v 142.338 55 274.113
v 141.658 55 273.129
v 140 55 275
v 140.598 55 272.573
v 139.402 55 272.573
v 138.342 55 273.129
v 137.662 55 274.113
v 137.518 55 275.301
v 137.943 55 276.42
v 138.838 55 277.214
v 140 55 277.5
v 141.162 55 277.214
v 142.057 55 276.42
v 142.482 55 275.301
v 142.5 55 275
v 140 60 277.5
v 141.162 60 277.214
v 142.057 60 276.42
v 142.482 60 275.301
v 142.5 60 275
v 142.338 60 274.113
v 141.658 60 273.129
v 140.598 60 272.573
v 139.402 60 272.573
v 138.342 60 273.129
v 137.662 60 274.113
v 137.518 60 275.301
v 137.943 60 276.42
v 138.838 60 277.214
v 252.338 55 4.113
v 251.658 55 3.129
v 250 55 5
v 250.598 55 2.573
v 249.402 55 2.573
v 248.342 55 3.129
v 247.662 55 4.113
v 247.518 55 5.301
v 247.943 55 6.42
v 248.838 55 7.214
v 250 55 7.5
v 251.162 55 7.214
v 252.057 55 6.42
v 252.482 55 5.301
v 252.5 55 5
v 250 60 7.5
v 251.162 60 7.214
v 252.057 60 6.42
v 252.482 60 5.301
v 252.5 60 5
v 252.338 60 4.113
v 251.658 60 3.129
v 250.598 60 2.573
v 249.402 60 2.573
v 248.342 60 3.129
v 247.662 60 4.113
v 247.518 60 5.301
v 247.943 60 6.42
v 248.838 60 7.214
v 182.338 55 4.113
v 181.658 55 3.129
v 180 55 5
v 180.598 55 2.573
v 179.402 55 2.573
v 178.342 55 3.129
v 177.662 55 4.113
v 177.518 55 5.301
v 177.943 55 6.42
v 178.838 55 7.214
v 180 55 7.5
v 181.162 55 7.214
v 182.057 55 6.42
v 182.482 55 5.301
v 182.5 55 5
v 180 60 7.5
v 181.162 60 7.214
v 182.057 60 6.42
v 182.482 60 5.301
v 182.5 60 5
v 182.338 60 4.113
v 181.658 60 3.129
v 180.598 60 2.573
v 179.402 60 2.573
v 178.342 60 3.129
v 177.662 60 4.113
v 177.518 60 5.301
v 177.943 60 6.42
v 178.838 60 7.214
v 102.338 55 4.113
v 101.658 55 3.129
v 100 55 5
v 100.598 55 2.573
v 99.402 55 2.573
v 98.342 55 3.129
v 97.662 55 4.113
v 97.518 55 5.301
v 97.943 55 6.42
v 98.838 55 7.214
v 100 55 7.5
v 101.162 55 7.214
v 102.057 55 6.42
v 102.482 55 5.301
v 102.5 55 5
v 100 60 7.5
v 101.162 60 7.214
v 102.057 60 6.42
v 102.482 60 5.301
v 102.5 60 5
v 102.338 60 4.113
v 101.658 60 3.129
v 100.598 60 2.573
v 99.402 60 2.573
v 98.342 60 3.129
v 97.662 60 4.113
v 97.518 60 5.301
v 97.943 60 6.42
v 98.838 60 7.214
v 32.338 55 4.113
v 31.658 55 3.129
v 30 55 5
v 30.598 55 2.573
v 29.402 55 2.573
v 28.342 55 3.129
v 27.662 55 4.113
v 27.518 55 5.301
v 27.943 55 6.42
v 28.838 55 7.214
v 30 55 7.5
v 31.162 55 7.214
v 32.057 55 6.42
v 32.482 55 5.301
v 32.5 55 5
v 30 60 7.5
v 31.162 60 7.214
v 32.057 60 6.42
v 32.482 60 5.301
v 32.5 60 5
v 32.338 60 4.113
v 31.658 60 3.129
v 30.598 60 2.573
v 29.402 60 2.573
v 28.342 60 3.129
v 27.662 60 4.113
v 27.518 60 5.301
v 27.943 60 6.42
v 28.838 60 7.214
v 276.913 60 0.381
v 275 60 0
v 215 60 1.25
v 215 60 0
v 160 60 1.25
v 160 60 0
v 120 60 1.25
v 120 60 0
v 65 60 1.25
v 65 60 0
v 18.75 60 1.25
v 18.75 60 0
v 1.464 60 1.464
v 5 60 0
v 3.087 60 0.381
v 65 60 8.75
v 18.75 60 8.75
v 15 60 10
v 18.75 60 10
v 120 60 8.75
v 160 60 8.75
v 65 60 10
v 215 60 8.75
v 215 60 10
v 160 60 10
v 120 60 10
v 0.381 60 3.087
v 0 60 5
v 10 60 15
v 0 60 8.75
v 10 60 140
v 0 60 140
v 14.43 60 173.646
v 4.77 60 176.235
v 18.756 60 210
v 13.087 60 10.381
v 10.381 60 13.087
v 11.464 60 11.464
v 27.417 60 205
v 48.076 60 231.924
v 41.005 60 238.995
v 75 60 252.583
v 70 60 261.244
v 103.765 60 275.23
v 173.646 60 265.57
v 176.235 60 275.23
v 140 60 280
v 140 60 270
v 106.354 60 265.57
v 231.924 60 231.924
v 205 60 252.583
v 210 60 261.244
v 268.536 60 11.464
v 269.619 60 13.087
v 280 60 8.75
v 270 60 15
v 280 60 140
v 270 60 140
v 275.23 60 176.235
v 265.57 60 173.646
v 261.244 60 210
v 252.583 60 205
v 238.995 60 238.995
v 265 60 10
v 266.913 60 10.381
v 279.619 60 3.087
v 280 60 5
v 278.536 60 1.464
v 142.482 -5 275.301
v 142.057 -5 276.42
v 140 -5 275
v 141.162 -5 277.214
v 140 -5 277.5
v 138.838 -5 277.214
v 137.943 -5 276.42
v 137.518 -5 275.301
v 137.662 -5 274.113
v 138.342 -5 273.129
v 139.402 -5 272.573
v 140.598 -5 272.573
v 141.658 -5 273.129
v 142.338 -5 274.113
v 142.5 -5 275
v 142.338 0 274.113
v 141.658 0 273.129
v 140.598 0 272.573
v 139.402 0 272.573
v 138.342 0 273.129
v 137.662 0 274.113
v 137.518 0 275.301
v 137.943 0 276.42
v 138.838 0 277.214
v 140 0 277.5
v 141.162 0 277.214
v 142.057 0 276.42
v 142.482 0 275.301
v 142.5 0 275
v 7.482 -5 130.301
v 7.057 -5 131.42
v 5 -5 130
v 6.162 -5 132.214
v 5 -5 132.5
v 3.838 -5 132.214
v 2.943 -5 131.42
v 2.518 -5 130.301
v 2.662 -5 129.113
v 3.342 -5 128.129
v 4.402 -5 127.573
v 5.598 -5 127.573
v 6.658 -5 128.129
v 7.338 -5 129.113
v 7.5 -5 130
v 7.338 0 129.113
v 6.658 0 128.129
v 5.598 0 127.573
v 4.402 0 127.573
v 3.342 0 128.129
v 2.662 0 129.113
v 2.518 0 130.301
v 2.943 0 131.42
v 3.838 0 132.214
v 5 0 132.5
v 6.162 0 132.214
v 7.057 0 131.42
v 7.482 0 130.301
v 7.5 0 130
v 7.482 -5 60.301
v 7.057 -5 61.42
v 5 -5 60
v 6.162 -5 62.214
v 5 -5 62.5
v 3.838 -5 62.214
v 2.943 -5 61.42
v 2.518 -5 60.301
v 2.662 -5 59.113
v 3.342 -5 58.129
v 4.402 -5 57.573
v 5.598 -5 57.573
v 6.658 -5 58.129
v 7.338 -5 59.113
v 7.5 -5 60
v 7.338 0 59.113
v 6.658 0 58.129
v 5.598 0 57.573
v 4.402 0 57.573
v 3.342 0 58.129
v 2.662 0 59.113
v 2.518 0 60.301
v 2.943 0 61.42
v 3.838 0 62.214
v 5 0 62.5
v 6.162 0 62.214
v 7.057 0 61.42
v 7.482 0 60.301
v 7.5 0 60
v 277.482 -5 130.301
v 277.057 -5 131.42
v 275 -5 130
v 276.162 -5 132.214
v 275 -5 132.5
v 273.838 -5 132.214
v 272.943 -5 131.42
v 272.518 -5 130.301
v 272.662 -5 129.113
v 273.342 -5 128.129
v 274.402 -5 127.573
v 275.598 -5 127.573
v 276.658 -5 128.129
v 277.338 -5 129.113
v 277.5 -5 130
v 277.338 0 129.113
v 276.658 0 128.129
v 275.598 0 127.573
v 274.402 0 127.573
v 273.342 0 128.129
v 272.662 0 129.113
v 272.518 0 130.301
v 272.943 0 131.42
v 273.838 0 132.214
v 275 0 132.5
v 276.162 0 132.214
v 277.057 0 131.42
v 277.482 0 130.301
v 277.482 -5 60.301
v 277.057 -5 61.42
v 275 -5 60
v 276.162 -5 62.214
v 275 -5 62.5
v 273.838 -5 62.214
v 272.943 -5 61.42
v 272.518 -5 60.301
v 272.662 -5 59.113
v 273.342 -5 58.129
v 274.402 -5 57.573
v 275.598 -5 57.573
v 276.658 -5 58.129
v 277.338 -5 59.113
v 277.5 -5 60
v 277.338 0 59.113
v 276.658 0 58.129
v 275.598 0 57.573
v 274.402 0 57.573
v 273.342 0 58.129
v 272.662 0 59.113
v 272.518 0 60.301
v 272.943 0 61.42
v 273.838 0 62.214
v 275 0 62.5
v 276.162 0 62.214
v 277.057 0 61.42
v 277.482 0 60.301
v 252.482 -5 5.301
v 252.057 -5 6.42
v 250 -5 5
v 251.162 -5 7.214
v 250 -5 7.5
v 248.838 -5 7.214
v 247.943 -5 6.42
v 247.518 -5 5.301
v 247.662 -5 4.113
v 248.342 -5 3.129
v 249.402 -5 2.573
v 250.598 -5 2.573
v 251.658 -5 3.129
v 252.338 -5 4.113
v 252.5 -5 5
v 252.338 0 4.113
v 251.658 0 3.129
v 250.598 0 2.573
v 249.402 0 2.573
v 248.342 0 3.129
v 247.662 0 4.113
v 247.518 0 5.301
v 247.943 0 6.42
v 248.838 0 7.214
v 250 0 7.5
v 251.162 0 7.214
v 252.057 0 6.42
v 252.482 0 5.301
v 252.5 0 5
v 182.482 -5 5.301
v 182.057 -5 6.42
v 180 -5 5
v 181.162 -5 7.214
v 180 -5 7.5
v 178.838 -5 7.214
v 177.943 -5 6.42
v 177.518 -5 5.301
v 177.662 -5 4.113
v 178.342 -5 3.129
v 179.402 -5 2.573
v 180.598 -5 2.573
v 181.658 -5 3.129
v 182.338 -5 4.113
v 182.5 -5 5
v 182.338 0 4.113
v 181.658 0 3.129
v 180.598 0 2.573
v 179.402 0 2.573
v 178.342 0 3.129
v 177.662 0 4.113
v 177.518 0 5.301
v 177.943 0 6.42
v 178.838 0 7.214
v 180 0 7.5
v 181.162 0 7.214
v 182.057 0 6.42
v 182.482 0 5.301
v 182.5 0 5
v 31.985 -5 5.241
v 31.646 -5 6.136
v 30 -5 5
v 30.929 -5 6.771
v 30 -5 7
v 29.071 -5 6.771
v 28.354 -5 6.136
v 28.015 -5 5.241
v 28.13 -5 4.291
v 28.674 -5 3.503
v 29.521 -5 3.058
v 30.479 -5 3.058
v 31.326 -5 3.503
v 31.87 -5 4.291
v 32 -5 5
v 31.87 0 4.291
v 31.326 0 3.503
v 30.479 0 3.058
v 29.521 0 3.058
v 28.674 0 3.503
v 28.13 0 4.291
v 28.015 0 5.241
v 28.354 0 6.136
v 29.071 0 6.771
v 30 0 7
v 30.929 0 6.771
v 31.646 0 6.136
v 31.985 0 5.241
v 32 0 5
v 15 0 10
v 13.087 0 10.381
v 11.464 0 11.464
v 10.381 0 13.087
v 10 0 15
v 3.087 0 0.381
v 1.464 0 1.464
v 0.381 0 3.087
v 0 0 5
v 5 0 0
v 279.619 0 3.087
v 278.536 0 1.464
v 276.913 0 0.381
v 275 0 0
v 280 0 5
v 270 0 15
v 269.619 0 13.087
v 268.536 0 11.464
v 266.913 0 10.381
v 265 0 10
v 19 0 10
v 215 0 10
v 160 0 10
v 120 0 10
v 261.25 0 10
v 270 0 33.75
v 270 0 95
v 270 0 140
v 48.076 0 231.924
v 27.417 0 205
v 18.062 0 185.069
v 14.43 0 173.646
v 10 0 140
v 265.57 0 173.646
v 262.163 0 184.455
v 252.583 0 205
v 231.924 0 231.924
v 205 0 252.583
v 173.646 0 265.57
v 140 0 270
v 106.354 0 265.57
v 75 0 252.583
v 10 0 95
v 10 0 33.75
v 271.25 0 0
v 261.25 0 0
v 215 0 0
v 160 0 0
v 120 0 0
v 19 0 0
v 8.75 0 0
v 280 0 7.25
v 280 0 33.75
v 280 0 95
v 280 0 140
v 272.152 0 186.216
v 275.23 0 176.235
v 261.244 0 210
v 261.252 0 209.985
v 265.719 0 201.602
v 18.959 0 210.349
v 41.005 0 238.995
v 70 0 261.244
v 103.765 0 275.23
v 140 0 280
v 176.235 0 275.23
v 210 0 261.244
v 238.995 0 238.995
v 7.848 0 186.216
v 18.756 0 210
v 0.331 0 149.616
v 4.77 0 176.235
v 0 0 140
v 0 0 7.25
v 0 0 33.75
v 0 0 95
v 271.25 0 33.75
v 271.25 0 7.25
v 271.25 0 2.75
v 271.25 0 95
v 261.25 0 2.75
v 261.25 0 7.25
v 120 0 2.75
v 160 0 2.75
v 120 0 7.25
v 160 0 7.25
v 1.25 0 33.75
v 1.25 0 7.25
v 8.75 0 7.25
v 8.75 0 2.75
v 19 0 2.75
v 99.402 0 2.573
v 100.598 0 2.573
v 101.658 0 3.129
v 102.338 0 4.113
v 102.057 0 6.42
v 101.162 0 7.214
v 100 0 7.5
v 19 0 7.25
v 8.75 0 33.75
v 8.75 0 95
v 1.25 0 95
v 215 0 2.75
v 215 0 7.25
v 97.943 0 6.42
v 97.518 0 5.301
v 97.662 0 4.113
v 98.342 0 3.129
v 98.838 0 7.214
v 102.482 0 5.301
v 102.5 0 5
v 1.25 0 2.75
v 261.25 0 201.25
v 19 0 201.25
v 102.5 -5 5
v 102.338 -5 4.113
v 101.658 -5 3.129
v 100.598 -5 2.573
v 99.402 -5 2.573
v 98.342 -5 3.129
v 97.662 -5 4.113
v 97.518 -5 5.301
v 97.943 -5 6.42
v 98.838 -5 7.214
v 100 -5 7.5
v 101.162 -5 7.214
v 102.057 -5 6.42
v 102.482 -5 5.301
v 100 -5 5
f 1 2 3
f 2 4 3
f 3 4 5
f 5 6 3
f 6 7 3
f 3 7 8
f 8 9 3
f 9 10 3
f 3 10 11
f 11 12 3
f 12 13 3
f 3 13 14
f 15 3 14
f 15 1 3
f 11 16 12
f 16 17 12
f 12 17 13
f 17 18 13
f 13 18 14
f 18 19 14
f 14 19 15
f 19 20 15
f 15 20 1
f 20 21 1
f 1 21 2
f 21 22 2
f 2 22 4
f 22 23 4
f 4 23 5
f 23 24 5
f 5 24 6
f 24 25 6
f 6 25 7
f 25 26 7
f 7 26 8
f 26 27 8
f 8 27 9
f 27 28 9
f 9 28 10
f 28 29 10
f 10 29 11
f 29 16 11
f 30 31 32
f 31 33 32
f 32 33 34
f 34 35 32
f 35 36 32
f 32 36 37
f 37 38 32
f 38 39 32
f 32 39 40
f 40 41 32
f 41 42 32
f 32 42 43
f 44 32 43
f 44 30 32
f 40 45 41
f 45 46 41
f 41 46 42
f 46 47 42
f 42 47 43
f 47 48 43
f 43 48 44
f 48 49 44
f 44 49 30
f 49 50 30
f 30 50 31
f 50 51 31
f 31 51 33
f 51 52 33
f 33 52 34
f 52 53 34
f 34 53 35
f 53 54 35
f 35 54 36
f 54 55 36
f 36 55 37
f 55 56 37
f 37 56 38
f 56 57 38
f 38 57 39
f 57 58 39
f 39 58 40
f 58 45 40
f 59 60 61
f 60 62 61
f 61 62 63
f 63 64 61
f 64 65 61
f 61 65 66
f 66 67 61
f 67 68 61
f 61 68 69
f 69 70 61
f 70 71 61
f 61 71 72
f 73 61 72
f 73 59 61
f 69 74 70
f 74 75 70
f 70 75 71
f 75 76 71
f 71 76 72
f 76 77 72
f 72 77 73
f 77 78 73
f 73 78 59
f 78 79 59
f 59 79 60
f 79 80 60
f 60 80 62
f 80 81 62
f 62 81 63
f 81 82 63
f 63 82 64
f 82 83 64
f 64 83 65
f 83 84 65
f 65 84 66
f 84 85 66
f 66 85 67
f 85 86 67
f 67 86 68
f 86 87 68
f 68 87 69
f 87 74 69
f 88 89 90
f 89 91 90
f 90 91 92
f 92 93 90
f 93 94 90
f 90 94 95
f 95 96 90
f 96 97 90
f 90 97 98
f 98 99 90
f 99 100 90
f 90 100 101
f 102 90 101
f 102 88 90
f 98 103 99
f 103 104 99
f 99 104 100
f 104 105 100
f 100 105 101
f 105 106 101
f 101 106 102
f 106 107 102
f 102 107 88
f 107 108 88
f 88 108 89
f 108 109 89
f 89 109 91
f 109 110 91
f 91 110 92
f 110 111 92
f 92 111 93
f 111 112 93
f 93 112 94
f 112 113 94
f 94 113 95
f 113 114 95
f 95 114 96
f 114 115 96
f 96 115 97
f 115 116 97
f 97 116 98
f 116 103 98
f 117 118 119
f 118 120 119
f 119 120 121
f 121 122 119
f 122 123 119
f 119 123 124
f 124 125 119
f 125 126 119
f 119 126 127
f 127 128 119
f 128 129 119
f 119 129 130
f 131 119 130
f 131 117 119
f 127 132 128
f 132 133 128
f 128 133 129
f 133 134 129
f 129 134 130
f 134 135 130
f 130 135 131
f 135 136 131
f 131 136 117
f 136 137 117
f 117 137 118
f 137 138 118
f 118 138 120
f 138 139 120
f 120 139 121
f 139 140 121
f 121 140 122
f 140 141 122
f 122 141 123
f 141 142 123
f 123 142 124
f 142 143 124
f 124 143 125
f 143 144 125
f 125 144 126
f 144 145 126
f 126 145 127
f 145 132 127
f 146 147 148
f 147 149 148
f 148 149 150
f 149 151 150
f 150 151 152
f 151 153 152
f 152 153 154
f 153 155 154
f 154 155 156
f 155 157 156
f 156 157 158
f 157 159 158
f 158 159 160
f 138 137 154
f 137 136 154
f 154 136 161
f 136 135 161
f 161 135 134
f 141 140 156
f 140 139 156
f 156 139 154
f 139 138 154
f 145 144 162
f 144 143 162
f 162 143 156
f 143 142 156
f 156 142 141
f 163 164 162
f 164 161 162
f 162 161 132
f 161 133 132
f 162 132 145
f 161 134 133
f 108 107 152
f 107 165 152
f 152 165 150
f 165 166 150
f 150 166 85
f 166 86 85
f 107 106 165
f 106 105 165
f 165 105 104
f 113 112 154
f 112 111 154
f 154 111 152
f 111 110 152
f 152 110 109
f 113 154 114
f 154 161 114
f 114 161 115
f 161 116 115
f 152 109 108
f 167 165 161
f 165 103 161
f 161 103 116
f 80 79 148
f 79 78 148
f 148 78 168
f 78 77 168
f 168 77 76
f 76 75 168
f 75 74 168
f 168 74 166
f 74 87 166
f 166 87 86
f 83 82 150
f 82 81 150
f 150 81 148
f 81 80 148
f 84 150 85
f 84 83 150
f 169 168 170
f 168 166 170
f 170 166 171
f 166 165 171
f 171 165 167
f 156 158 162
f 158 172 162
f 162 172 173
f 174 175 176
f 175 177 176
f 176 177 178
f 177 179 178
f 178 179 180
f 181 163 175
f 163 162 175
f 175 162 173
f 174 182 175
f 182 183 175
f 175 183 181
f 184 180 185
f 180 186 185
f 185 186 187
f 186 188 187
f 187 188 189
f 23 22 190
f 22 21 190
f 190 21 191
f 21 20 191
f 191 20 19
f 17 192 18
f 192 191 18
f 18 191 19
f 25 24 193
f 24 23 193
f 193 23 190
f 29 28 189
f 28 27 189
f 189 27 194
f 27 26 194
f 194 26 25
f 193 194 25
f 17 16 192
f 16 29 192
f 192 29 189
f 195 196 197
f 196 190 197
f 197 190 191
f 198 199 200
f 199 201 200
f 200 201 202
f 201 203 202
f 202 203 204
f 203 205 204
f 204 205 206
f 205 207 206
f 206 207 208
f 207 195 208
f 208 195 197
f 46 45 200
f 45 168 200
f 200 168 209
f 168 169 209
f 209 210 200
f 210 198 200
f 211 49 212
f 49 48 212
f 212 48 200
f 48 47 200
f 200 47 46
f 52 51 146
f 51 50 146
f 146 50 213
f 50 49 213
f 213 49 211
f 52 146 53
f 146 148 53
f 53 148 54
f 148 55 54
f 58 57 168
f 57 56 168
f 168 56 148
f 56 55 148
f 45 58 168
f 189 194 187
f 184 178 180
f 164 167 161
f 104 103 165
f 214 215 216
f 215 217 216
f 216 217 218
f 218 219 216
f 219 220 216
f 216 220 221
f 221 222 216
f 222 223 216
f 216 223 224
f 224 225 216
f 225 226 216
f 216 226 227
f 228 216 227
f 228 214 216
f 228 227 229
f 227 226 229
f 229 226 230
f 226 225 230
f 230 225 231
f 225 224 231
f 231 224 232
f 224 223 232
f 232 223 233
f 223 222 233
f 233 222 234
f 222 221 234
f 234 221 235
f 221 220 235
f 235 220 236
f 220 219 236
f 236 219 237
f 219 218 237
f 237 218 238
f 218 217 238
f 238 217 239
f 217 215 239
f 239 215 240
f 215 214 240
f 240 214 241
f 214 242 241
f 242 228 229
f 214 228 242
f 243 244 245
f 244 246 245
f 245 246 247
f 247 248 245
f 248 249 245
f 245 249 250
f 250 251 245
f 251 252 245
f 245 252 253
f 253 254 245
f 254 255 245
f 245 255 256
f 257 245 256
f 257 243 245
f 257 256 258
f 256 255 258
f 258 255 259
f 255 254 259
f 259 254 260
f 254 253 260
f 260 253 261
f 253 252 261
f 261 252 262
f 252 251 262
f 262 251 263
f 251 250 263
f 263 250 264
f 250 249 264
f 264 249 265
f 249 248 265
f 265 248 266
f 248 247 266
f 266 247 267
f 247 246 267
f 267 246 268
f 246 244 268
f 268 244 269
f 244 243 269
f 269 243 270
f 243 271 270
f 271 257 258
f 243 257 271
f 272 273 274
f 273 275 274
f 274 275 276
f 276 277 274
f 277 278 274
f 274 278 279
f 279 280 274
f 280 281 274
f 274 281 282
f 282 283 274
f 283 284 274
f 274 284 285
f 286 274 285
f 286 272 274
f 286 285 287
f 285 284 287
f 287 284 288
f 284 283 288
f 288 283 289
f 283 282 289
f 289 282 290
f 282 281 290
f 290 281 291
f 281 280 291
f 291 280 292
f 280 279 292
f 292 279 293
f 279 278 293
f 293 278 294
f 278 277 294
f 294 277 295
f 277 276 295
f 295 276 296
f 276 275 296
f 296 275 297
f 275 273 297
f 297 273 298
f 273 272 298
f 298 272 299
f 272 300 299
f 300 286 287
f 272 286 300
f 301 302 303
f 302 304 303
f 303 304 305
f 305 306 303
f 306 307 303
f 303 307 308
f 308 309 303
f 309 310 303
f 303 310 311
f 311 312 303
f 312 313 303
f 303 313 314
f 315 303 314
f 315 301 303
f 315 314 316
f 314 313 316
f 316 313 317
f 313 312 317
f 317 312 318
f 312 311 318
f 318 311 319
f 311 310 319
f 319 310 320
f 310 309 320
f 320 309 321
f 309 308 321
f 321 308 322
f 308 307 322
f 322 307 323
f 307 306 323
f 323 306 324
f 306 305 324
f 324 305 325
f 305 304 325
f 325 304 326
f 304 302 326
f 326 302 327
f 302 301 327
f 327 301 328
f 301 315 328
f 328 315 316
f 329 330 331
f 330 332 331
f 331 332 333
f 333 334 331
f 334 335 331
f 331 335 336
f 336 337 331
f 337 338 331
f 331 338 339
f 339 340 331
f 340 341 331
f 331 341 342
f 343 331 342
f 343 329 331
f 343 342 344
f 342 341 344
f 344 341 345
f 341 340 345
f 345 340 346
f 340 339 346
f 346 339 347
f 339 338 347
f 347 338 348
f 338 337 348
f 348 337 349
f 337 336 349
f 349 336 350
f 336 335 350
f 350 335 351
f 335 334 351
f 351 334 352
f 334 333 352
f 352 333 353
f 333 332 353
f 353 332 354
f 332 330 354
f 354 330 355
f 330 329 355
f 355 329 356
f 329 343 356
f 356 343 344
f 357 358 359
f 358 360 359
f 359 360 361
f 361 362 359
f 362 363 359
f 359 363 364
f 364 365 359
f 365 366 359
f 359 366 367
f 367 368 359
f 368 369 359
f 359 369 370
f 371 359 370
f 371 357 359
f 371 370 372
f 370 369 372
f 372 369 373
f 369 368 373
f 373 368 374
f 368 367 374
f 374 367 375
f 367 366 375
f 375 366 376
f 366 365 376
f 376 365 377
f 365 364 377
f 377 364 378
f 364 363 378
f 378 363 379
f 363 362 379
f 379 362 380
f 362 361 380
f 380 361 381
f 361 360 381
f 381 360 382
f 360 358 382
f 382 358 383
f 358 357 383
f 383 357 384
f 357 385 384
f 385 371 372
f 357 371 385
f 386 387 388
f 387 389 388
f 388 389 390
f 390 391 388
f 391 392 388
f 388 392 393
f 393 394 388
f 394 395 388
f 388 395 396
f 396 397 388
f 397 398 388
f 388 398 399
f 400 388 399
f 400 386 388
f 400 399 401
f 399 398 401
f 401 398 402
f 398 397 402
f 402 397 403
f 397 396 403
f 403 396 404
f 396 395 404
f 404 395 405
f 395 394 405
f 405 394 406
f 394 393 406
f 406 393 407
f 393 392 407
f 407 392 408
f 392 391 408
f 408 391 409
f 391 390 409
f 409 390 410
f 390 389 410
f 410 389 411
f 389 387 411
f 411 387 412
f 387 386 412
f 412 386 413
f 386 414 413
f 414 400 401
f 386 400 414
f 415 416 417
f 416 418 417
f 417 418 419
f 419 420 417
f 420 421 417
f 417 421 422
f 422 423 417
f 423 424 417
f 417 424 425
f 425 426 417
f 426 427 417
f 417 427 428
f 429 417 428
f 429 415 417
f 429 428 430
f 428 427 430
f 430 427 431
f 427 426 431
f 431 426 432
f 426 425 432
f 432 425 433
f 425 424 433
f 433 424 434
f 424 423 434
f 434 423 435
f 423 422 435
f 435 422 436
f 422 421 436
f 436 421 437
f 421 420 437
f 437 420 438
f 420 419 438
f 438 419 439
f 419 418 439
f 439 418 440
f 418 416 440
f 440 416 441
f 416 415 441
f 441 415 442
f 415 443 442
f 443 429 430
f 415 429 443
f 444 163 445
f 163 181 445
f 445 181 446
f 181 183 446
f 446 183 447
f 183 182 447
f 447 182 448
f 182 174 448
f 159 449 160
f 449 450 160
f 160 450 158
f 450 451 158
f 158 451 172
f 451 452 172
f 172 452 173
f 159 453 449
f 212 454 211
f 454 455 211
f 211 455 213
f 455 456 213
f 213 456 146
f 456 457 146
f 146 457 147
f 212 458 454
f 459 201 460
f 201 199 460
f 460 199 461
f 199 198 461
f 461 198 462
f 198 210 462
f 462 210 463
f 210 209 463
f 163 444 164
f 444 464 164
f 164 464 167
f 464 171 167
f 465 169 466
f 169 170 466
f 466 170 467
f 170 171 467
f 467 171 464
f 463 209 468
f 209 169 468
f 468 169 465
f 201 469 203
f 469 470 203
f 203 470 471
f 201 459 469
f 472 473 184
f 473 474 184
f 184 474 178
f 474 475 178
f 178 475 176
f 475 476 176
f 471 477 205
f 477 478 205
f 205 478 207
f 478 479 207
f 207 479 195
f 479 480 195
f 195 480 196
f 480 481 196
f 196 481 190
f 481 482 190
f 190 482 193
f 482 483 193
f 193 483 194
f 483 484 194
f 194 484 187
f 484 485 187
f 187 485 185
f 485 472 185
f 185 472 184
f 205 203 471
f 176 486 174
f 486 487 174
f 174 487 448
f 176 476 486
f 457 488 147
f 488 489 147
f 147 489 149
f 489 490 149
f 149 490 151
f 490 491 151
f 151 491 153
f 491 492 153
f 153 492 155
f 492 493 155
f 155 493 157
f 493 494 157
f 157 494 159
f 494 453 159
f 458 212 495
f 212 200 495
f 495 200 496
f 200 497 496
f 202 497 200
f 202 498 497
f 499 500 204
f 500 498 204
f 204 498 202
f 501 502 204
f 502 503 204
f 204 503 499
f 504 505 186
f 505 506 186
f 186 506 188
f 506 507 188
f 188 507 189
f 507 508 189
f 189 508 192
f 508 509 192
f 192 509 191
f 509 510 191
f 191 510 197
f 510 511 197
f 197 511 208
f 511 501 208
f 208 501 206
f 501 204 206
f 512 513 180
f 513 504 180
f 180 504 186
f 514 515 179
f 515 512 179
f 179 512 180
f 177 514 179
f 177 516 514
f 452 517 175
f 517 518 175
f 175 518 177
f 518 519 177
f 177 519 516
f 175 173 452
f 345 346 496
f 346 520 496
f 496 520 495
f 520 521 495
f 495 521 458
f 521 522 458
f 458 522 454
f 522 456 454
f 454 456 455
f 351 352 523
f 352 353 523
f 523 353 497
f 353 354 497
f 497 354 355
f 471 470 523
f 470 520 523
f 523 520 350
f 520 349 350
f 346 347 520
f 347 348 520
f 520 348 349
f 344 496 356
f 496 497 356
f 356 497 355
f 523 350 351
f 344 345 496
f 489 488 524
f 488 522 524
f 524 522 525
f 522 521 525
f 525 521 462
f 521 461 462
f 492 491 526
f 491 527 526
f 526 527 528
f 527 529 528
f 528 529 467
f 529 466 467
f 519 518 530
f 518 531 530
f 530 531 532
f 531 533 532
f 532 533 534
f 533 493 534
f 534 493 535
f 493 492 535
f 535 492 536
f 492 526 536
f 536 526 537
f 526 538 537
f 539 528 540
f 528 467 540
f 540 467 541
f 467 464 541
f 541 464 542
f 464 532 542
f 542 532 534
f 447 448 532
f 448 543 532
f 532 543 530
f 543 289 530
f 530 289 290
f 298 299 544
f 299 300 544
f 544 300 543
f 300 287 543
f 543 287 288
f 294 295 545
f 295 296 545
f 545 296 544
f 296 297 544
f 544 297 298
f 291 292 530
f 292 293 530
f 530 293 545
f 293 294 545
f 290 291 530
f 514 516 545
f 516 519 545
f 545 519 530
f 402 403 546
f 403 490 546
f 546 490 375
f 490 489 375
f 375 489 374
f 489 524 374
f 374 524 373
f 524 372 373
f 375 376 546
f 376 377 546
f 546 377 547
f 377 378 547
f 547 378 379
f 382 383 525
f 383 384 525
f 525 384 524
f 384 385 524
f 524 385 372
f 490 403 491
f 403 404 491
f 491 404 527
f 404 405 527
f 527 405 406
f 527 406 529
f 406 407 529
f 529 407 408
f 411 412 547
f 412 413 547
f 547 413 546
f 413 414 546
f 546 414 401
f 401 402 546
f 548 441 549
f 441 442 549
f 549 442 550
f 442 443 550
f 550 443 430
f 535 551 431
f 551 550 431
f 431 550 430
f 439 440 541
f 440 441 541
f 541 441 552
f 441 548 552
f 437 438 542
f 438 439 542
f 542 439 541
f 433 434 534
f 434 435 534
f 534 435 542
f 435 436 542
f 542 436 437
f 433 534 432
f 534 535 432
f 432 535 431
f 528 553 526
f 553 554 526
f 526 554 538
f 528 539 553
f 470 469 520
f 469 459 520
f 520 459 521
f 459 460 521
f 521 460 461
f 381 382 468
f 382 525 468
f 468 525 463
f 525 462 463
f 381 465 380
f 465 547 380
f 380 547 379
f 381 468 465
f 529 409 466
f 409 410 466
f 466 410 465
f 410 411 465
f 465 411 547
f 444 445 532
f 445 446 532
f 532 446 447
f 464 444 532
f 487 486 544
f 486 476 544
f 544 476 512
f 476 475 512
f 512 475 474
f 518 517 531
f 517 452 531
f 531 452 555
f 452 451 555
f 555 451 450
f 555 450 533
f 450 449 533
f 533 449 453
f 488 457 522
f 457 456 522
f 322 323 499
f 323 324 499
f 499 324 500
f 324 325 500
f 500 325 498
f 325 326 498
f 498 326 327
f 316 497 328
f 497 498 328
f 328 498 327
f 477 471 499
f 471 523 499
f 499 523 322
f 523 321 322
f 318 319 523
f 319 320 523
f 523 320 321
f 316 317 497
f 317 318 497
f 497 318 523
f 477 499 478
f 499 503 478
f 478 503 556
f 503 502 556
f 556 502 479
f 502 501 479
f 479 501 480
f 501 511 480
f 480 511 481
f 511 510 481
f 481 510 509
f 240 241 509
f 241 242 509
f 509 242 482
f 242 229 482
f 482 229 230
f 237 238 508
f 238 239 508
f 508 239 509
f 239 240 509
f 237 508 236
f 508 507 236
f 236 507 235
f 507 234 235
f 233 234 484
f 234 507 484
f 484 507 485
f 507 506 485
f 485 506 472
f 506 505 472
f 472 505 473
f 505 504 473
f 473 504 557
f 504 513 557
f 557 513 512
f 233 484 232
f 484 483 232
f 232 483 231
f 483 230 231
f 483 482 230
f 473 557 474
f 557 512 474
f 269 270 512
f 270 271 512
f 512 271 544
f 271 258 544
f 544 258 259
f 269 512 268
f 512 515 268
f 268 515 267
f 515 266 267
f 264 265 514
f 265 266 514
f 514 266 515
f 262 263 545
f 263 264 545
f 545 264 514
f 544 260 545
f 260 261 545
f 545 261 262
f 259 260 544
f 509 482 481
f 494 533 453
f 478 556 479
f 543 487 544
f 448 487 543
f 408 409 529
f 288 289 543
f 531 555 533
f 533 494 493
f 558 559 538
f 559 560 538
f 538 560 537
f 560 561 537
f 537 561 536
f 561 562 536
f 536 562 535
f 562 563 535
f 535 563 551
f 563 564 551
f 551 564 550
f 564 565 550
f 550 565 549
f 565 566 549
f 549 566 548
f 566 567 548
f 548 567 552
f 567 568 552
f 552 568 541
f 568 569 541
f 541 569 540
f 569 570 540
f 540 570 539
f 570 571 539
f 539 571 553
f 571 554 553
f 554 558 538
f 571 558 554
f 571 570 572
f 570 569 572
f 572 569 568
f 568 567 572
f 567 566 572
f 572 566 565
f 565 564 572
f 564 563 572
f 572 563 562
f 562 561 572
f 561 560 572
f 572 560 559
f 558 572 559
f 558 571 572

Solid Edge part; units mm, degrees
sketch "Sketch1" plane through (0, 0, 0) normal (0, -1, 0) x (1, 0, 0)
  line L0 (280, 0) -> (280, 140)
  line L1 (0, 0) -> (280, 0)
  line L2 (0, 140) -> (0, 0)
  arc A0 (0, 140) -> (280, 140) centre (140, 140) cw
extrude "Protrusion1" add sketch "Sketch1" against normal blind 60
shell "Thinwall_1" thickness 10 removed faces 2 at (49.4667, 0, 236.1333) at (49.4667, 60, 236.1333)
fillet "Round_6" radius 5 1 edges at (270, 30, 10)
fillet "Round_7" radius 5 1 edges at (280, 30, 0)
fillet "Round_8" radius 5 1 edges at (0, 30, 0)
fillet "Round_9" radius 5 1 edges at (10, 30, 10)
sketch "Sketch2" plane through (140, 0, 140) normal (0, -1, 0) x (1, 0, 0)
  circle A0 centre (-40, -135) radius 2.5
  circle A1 centre (-110, -135) radius 2
  circle A2 centre (40, -135) radius 2.5
  circle A3 centre (110, -135) radius 2.5
  dimension "D1" = 4
  dimension "D2" = 5
  dimension "D3" = 30
  dimension "D4" = 5
  dimension "D5" = 5
  dimension "D6" = 5
  dimension "D7" = 30
  dimension "D8" = 70
  dimension "D9" = 70
  dimension "D10" = 80
extrude "ExtrudedProtrusion_18" add sketch "Sketch2" along normal blind 5
sketch "Sketch3" plane through (140, 60, 140) normal (0, -1, 0) x (1, 0, 0)
  circle A0 centre (-110, -135) radius 2.5
  circle A1 centre (-40, -135) radius 2.5
  circle A2 centre (40, -135) radius 2.5
  circle A3 centre (110, -135) radius 2.5
  dimension "D1" = 5
  dimension "D2" = 30
  dimension "D3" = 5
  dimension "D4" = 5
  dimension "D5" = 5
  dimension "D6" = 5
  dimension "D7" = 70
  dimension "D8" = 80
  dimension "D9" = 70
extrude "Cutout1" cut sketch "Sketch3" along normal blind 5
sketch "Sketch4" plane through (140, 0, 140) normal (0, -1, 0) x (1, 0, 0)
  circle A0 centre (-135, -80) radius 2.5
  circle A1 centre (-135, -10) radius 2.5
  circle A2 centre (135, -10) radius 2.5
  circle A3 centre (135, -80) radius 2.5
  dimension "D1" = 5
  dimension "D2" = 5
  dimension "D3" = 60
  dimension "D4" = 5
  dimension "D5" = 70
extrude "ExtrudedProtrusion_20" add sketch "Sketch4" along normal blind 5
sketch "Sketch5" plane through (140, 0, 140) normal (0, -1, 0) x (1, 0, 0)
  circle A0 centre (0, 135) radius 2.5
extrude "ExtrudedProtrusion_21" add sketch "Sketch5" along normal blind 5
sketch "Sketch6" plane through (140, 60, 140) normal (0, -1, 0) x (1, 0, 0)
  circle A0 centre (0, 135) radius 2.5
extrude "ExtrudedCutout_5" cut sketch "Sketch6" along normal blind 5
